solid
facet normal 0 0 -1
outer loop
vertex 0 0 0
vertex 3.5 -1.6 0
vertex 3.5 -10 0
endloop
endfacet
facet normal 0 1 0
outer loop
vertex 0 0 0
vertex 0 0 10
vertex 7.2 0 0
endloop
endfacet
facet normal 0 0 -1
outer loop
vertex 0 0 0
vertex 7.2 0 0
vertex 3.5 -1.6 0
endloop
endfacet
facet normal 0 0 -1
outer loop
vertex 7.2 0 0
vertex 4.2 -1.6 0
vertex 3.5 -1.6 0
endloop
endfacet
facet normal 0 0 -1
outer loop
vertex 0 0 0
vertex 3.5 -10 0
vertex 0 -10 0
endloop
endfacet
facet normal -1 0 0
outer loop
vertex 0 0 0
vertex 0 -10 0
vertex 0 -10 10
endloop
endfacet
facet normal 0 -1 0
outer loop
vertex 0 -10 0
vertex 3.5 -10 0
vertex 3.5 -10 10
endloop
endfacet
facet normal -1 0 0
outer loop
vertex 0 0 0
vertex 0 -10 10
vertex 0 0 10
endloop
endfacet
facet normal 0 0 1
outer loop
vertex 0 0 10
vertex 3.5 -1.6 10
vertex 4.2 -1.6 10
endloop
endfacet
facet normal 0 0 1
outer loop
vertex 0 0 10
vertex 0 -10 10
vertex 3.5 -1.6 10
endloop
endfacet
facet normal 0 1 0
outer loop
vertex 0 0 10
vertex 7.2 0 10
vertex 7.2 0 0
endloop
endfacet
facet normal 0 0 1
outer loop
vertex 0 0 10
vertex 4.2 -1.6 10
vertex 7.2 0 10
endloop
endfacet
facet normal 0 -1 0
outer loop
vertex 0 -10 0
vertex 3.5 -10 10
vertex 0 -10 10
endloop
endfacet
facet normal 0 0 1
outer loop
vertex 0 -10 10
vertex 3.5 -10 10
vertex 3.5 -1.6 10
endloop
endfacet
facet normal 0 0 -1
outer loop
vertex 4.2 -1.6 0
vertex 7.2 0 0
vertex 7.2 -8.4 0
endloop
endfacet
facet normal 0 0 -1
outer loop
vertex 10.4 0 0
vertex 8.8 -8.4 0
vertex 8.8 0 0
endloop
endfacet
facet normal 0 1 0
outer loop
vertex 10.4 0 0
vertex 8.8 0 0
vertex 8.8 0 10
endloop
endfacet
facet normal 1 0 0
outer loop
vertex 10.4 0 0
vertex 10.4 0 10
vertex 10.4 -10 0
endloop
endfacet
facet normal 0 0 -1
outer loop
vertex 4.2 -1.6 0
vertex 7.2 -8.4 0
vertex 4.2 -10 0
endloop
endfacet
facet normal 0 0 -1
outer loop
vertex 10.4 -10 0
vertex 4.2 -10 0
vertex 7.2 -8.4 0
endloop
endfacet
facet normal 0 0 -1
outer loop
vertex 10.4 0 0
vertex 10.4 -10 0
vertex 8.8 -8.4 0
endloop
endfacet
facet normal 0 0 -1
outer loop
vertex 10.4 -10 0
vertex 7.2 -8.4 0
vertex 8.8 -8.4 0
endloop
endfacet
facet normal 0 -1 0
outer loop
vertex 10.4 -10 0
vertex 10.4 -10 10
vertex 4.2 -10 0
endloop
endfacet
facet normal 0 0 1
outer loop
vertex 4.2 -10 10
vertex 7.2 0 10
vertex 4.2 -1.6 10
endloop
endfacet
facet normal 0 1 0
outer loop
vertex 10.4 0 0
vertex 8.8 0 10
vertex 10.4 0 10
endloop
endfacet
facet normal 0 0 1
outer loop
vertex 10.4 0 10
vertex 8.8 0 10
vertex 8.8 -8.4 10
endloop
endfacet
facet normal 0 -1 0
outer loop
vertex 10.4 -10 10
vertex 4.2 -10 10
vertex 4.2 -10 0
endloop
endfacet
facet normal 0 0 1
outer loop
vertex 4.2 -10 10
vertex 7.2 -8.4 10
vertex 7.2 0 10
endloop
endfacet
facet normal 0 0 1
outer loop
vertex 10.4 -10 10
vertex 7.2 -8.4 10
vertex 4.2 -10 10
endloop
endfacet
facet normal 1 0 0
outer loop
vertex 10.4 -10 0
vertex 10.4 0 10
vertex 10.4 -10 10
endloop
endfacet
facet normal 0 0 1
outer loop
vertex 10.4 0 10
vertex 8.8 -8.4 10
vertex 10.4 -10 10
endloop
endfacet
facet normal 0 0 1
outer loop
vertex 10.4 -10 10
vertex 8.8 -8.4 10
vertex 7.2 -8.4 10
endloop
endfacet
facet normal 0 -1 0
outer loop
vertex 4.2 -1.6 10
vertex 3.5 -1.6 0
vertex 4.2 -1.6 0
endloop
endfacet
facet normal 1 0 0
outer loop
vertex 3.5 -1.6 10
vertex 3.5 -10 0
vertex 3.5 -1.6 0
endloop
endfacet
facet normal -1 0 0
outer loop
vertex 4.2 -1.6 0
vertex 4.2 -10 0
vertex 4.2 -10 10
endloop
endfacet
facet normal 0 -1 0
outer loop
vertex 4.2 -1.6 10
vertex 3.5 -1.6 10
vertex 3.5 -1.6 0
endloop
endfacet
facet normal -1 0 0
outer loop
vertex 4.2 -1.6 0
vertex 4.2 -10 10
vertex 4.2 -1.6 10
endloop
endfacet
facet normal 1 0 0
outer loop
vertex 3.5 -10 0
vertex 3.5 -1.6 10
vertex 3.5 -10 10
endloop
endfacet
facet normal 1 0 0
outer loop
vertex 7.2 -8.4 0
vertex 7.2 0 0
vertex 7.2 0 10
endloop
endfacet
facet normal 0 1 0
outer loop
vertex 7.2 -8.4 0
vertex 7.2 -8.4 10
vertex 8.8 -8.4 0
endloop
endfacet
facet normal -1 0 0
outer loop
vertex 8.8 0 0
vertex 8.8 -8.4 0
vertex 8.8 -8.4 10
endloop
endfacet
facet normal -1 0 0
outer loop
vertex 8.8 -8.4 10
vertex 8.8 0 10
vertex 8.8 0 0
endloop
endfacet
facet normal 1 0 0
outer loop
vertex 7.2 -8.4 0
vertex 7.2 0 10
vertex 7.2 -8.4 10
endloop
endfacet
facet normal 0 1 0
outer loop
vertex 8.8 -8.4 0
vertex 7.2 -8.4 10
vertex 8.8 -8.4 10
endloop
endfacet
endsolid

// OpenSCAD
length = 10;
height = 10;
gap = 1.6;
width = 4 + gap * 4;

rotate([90,0,0]) difference() {
  cube([width, length, height]);

  translate([3.5, -1, gap]) cube([0.7, length * 2, height]);
  translate([4 + gap * 2, -1, -gap]) cube([gap, length * 2, height]);
}
